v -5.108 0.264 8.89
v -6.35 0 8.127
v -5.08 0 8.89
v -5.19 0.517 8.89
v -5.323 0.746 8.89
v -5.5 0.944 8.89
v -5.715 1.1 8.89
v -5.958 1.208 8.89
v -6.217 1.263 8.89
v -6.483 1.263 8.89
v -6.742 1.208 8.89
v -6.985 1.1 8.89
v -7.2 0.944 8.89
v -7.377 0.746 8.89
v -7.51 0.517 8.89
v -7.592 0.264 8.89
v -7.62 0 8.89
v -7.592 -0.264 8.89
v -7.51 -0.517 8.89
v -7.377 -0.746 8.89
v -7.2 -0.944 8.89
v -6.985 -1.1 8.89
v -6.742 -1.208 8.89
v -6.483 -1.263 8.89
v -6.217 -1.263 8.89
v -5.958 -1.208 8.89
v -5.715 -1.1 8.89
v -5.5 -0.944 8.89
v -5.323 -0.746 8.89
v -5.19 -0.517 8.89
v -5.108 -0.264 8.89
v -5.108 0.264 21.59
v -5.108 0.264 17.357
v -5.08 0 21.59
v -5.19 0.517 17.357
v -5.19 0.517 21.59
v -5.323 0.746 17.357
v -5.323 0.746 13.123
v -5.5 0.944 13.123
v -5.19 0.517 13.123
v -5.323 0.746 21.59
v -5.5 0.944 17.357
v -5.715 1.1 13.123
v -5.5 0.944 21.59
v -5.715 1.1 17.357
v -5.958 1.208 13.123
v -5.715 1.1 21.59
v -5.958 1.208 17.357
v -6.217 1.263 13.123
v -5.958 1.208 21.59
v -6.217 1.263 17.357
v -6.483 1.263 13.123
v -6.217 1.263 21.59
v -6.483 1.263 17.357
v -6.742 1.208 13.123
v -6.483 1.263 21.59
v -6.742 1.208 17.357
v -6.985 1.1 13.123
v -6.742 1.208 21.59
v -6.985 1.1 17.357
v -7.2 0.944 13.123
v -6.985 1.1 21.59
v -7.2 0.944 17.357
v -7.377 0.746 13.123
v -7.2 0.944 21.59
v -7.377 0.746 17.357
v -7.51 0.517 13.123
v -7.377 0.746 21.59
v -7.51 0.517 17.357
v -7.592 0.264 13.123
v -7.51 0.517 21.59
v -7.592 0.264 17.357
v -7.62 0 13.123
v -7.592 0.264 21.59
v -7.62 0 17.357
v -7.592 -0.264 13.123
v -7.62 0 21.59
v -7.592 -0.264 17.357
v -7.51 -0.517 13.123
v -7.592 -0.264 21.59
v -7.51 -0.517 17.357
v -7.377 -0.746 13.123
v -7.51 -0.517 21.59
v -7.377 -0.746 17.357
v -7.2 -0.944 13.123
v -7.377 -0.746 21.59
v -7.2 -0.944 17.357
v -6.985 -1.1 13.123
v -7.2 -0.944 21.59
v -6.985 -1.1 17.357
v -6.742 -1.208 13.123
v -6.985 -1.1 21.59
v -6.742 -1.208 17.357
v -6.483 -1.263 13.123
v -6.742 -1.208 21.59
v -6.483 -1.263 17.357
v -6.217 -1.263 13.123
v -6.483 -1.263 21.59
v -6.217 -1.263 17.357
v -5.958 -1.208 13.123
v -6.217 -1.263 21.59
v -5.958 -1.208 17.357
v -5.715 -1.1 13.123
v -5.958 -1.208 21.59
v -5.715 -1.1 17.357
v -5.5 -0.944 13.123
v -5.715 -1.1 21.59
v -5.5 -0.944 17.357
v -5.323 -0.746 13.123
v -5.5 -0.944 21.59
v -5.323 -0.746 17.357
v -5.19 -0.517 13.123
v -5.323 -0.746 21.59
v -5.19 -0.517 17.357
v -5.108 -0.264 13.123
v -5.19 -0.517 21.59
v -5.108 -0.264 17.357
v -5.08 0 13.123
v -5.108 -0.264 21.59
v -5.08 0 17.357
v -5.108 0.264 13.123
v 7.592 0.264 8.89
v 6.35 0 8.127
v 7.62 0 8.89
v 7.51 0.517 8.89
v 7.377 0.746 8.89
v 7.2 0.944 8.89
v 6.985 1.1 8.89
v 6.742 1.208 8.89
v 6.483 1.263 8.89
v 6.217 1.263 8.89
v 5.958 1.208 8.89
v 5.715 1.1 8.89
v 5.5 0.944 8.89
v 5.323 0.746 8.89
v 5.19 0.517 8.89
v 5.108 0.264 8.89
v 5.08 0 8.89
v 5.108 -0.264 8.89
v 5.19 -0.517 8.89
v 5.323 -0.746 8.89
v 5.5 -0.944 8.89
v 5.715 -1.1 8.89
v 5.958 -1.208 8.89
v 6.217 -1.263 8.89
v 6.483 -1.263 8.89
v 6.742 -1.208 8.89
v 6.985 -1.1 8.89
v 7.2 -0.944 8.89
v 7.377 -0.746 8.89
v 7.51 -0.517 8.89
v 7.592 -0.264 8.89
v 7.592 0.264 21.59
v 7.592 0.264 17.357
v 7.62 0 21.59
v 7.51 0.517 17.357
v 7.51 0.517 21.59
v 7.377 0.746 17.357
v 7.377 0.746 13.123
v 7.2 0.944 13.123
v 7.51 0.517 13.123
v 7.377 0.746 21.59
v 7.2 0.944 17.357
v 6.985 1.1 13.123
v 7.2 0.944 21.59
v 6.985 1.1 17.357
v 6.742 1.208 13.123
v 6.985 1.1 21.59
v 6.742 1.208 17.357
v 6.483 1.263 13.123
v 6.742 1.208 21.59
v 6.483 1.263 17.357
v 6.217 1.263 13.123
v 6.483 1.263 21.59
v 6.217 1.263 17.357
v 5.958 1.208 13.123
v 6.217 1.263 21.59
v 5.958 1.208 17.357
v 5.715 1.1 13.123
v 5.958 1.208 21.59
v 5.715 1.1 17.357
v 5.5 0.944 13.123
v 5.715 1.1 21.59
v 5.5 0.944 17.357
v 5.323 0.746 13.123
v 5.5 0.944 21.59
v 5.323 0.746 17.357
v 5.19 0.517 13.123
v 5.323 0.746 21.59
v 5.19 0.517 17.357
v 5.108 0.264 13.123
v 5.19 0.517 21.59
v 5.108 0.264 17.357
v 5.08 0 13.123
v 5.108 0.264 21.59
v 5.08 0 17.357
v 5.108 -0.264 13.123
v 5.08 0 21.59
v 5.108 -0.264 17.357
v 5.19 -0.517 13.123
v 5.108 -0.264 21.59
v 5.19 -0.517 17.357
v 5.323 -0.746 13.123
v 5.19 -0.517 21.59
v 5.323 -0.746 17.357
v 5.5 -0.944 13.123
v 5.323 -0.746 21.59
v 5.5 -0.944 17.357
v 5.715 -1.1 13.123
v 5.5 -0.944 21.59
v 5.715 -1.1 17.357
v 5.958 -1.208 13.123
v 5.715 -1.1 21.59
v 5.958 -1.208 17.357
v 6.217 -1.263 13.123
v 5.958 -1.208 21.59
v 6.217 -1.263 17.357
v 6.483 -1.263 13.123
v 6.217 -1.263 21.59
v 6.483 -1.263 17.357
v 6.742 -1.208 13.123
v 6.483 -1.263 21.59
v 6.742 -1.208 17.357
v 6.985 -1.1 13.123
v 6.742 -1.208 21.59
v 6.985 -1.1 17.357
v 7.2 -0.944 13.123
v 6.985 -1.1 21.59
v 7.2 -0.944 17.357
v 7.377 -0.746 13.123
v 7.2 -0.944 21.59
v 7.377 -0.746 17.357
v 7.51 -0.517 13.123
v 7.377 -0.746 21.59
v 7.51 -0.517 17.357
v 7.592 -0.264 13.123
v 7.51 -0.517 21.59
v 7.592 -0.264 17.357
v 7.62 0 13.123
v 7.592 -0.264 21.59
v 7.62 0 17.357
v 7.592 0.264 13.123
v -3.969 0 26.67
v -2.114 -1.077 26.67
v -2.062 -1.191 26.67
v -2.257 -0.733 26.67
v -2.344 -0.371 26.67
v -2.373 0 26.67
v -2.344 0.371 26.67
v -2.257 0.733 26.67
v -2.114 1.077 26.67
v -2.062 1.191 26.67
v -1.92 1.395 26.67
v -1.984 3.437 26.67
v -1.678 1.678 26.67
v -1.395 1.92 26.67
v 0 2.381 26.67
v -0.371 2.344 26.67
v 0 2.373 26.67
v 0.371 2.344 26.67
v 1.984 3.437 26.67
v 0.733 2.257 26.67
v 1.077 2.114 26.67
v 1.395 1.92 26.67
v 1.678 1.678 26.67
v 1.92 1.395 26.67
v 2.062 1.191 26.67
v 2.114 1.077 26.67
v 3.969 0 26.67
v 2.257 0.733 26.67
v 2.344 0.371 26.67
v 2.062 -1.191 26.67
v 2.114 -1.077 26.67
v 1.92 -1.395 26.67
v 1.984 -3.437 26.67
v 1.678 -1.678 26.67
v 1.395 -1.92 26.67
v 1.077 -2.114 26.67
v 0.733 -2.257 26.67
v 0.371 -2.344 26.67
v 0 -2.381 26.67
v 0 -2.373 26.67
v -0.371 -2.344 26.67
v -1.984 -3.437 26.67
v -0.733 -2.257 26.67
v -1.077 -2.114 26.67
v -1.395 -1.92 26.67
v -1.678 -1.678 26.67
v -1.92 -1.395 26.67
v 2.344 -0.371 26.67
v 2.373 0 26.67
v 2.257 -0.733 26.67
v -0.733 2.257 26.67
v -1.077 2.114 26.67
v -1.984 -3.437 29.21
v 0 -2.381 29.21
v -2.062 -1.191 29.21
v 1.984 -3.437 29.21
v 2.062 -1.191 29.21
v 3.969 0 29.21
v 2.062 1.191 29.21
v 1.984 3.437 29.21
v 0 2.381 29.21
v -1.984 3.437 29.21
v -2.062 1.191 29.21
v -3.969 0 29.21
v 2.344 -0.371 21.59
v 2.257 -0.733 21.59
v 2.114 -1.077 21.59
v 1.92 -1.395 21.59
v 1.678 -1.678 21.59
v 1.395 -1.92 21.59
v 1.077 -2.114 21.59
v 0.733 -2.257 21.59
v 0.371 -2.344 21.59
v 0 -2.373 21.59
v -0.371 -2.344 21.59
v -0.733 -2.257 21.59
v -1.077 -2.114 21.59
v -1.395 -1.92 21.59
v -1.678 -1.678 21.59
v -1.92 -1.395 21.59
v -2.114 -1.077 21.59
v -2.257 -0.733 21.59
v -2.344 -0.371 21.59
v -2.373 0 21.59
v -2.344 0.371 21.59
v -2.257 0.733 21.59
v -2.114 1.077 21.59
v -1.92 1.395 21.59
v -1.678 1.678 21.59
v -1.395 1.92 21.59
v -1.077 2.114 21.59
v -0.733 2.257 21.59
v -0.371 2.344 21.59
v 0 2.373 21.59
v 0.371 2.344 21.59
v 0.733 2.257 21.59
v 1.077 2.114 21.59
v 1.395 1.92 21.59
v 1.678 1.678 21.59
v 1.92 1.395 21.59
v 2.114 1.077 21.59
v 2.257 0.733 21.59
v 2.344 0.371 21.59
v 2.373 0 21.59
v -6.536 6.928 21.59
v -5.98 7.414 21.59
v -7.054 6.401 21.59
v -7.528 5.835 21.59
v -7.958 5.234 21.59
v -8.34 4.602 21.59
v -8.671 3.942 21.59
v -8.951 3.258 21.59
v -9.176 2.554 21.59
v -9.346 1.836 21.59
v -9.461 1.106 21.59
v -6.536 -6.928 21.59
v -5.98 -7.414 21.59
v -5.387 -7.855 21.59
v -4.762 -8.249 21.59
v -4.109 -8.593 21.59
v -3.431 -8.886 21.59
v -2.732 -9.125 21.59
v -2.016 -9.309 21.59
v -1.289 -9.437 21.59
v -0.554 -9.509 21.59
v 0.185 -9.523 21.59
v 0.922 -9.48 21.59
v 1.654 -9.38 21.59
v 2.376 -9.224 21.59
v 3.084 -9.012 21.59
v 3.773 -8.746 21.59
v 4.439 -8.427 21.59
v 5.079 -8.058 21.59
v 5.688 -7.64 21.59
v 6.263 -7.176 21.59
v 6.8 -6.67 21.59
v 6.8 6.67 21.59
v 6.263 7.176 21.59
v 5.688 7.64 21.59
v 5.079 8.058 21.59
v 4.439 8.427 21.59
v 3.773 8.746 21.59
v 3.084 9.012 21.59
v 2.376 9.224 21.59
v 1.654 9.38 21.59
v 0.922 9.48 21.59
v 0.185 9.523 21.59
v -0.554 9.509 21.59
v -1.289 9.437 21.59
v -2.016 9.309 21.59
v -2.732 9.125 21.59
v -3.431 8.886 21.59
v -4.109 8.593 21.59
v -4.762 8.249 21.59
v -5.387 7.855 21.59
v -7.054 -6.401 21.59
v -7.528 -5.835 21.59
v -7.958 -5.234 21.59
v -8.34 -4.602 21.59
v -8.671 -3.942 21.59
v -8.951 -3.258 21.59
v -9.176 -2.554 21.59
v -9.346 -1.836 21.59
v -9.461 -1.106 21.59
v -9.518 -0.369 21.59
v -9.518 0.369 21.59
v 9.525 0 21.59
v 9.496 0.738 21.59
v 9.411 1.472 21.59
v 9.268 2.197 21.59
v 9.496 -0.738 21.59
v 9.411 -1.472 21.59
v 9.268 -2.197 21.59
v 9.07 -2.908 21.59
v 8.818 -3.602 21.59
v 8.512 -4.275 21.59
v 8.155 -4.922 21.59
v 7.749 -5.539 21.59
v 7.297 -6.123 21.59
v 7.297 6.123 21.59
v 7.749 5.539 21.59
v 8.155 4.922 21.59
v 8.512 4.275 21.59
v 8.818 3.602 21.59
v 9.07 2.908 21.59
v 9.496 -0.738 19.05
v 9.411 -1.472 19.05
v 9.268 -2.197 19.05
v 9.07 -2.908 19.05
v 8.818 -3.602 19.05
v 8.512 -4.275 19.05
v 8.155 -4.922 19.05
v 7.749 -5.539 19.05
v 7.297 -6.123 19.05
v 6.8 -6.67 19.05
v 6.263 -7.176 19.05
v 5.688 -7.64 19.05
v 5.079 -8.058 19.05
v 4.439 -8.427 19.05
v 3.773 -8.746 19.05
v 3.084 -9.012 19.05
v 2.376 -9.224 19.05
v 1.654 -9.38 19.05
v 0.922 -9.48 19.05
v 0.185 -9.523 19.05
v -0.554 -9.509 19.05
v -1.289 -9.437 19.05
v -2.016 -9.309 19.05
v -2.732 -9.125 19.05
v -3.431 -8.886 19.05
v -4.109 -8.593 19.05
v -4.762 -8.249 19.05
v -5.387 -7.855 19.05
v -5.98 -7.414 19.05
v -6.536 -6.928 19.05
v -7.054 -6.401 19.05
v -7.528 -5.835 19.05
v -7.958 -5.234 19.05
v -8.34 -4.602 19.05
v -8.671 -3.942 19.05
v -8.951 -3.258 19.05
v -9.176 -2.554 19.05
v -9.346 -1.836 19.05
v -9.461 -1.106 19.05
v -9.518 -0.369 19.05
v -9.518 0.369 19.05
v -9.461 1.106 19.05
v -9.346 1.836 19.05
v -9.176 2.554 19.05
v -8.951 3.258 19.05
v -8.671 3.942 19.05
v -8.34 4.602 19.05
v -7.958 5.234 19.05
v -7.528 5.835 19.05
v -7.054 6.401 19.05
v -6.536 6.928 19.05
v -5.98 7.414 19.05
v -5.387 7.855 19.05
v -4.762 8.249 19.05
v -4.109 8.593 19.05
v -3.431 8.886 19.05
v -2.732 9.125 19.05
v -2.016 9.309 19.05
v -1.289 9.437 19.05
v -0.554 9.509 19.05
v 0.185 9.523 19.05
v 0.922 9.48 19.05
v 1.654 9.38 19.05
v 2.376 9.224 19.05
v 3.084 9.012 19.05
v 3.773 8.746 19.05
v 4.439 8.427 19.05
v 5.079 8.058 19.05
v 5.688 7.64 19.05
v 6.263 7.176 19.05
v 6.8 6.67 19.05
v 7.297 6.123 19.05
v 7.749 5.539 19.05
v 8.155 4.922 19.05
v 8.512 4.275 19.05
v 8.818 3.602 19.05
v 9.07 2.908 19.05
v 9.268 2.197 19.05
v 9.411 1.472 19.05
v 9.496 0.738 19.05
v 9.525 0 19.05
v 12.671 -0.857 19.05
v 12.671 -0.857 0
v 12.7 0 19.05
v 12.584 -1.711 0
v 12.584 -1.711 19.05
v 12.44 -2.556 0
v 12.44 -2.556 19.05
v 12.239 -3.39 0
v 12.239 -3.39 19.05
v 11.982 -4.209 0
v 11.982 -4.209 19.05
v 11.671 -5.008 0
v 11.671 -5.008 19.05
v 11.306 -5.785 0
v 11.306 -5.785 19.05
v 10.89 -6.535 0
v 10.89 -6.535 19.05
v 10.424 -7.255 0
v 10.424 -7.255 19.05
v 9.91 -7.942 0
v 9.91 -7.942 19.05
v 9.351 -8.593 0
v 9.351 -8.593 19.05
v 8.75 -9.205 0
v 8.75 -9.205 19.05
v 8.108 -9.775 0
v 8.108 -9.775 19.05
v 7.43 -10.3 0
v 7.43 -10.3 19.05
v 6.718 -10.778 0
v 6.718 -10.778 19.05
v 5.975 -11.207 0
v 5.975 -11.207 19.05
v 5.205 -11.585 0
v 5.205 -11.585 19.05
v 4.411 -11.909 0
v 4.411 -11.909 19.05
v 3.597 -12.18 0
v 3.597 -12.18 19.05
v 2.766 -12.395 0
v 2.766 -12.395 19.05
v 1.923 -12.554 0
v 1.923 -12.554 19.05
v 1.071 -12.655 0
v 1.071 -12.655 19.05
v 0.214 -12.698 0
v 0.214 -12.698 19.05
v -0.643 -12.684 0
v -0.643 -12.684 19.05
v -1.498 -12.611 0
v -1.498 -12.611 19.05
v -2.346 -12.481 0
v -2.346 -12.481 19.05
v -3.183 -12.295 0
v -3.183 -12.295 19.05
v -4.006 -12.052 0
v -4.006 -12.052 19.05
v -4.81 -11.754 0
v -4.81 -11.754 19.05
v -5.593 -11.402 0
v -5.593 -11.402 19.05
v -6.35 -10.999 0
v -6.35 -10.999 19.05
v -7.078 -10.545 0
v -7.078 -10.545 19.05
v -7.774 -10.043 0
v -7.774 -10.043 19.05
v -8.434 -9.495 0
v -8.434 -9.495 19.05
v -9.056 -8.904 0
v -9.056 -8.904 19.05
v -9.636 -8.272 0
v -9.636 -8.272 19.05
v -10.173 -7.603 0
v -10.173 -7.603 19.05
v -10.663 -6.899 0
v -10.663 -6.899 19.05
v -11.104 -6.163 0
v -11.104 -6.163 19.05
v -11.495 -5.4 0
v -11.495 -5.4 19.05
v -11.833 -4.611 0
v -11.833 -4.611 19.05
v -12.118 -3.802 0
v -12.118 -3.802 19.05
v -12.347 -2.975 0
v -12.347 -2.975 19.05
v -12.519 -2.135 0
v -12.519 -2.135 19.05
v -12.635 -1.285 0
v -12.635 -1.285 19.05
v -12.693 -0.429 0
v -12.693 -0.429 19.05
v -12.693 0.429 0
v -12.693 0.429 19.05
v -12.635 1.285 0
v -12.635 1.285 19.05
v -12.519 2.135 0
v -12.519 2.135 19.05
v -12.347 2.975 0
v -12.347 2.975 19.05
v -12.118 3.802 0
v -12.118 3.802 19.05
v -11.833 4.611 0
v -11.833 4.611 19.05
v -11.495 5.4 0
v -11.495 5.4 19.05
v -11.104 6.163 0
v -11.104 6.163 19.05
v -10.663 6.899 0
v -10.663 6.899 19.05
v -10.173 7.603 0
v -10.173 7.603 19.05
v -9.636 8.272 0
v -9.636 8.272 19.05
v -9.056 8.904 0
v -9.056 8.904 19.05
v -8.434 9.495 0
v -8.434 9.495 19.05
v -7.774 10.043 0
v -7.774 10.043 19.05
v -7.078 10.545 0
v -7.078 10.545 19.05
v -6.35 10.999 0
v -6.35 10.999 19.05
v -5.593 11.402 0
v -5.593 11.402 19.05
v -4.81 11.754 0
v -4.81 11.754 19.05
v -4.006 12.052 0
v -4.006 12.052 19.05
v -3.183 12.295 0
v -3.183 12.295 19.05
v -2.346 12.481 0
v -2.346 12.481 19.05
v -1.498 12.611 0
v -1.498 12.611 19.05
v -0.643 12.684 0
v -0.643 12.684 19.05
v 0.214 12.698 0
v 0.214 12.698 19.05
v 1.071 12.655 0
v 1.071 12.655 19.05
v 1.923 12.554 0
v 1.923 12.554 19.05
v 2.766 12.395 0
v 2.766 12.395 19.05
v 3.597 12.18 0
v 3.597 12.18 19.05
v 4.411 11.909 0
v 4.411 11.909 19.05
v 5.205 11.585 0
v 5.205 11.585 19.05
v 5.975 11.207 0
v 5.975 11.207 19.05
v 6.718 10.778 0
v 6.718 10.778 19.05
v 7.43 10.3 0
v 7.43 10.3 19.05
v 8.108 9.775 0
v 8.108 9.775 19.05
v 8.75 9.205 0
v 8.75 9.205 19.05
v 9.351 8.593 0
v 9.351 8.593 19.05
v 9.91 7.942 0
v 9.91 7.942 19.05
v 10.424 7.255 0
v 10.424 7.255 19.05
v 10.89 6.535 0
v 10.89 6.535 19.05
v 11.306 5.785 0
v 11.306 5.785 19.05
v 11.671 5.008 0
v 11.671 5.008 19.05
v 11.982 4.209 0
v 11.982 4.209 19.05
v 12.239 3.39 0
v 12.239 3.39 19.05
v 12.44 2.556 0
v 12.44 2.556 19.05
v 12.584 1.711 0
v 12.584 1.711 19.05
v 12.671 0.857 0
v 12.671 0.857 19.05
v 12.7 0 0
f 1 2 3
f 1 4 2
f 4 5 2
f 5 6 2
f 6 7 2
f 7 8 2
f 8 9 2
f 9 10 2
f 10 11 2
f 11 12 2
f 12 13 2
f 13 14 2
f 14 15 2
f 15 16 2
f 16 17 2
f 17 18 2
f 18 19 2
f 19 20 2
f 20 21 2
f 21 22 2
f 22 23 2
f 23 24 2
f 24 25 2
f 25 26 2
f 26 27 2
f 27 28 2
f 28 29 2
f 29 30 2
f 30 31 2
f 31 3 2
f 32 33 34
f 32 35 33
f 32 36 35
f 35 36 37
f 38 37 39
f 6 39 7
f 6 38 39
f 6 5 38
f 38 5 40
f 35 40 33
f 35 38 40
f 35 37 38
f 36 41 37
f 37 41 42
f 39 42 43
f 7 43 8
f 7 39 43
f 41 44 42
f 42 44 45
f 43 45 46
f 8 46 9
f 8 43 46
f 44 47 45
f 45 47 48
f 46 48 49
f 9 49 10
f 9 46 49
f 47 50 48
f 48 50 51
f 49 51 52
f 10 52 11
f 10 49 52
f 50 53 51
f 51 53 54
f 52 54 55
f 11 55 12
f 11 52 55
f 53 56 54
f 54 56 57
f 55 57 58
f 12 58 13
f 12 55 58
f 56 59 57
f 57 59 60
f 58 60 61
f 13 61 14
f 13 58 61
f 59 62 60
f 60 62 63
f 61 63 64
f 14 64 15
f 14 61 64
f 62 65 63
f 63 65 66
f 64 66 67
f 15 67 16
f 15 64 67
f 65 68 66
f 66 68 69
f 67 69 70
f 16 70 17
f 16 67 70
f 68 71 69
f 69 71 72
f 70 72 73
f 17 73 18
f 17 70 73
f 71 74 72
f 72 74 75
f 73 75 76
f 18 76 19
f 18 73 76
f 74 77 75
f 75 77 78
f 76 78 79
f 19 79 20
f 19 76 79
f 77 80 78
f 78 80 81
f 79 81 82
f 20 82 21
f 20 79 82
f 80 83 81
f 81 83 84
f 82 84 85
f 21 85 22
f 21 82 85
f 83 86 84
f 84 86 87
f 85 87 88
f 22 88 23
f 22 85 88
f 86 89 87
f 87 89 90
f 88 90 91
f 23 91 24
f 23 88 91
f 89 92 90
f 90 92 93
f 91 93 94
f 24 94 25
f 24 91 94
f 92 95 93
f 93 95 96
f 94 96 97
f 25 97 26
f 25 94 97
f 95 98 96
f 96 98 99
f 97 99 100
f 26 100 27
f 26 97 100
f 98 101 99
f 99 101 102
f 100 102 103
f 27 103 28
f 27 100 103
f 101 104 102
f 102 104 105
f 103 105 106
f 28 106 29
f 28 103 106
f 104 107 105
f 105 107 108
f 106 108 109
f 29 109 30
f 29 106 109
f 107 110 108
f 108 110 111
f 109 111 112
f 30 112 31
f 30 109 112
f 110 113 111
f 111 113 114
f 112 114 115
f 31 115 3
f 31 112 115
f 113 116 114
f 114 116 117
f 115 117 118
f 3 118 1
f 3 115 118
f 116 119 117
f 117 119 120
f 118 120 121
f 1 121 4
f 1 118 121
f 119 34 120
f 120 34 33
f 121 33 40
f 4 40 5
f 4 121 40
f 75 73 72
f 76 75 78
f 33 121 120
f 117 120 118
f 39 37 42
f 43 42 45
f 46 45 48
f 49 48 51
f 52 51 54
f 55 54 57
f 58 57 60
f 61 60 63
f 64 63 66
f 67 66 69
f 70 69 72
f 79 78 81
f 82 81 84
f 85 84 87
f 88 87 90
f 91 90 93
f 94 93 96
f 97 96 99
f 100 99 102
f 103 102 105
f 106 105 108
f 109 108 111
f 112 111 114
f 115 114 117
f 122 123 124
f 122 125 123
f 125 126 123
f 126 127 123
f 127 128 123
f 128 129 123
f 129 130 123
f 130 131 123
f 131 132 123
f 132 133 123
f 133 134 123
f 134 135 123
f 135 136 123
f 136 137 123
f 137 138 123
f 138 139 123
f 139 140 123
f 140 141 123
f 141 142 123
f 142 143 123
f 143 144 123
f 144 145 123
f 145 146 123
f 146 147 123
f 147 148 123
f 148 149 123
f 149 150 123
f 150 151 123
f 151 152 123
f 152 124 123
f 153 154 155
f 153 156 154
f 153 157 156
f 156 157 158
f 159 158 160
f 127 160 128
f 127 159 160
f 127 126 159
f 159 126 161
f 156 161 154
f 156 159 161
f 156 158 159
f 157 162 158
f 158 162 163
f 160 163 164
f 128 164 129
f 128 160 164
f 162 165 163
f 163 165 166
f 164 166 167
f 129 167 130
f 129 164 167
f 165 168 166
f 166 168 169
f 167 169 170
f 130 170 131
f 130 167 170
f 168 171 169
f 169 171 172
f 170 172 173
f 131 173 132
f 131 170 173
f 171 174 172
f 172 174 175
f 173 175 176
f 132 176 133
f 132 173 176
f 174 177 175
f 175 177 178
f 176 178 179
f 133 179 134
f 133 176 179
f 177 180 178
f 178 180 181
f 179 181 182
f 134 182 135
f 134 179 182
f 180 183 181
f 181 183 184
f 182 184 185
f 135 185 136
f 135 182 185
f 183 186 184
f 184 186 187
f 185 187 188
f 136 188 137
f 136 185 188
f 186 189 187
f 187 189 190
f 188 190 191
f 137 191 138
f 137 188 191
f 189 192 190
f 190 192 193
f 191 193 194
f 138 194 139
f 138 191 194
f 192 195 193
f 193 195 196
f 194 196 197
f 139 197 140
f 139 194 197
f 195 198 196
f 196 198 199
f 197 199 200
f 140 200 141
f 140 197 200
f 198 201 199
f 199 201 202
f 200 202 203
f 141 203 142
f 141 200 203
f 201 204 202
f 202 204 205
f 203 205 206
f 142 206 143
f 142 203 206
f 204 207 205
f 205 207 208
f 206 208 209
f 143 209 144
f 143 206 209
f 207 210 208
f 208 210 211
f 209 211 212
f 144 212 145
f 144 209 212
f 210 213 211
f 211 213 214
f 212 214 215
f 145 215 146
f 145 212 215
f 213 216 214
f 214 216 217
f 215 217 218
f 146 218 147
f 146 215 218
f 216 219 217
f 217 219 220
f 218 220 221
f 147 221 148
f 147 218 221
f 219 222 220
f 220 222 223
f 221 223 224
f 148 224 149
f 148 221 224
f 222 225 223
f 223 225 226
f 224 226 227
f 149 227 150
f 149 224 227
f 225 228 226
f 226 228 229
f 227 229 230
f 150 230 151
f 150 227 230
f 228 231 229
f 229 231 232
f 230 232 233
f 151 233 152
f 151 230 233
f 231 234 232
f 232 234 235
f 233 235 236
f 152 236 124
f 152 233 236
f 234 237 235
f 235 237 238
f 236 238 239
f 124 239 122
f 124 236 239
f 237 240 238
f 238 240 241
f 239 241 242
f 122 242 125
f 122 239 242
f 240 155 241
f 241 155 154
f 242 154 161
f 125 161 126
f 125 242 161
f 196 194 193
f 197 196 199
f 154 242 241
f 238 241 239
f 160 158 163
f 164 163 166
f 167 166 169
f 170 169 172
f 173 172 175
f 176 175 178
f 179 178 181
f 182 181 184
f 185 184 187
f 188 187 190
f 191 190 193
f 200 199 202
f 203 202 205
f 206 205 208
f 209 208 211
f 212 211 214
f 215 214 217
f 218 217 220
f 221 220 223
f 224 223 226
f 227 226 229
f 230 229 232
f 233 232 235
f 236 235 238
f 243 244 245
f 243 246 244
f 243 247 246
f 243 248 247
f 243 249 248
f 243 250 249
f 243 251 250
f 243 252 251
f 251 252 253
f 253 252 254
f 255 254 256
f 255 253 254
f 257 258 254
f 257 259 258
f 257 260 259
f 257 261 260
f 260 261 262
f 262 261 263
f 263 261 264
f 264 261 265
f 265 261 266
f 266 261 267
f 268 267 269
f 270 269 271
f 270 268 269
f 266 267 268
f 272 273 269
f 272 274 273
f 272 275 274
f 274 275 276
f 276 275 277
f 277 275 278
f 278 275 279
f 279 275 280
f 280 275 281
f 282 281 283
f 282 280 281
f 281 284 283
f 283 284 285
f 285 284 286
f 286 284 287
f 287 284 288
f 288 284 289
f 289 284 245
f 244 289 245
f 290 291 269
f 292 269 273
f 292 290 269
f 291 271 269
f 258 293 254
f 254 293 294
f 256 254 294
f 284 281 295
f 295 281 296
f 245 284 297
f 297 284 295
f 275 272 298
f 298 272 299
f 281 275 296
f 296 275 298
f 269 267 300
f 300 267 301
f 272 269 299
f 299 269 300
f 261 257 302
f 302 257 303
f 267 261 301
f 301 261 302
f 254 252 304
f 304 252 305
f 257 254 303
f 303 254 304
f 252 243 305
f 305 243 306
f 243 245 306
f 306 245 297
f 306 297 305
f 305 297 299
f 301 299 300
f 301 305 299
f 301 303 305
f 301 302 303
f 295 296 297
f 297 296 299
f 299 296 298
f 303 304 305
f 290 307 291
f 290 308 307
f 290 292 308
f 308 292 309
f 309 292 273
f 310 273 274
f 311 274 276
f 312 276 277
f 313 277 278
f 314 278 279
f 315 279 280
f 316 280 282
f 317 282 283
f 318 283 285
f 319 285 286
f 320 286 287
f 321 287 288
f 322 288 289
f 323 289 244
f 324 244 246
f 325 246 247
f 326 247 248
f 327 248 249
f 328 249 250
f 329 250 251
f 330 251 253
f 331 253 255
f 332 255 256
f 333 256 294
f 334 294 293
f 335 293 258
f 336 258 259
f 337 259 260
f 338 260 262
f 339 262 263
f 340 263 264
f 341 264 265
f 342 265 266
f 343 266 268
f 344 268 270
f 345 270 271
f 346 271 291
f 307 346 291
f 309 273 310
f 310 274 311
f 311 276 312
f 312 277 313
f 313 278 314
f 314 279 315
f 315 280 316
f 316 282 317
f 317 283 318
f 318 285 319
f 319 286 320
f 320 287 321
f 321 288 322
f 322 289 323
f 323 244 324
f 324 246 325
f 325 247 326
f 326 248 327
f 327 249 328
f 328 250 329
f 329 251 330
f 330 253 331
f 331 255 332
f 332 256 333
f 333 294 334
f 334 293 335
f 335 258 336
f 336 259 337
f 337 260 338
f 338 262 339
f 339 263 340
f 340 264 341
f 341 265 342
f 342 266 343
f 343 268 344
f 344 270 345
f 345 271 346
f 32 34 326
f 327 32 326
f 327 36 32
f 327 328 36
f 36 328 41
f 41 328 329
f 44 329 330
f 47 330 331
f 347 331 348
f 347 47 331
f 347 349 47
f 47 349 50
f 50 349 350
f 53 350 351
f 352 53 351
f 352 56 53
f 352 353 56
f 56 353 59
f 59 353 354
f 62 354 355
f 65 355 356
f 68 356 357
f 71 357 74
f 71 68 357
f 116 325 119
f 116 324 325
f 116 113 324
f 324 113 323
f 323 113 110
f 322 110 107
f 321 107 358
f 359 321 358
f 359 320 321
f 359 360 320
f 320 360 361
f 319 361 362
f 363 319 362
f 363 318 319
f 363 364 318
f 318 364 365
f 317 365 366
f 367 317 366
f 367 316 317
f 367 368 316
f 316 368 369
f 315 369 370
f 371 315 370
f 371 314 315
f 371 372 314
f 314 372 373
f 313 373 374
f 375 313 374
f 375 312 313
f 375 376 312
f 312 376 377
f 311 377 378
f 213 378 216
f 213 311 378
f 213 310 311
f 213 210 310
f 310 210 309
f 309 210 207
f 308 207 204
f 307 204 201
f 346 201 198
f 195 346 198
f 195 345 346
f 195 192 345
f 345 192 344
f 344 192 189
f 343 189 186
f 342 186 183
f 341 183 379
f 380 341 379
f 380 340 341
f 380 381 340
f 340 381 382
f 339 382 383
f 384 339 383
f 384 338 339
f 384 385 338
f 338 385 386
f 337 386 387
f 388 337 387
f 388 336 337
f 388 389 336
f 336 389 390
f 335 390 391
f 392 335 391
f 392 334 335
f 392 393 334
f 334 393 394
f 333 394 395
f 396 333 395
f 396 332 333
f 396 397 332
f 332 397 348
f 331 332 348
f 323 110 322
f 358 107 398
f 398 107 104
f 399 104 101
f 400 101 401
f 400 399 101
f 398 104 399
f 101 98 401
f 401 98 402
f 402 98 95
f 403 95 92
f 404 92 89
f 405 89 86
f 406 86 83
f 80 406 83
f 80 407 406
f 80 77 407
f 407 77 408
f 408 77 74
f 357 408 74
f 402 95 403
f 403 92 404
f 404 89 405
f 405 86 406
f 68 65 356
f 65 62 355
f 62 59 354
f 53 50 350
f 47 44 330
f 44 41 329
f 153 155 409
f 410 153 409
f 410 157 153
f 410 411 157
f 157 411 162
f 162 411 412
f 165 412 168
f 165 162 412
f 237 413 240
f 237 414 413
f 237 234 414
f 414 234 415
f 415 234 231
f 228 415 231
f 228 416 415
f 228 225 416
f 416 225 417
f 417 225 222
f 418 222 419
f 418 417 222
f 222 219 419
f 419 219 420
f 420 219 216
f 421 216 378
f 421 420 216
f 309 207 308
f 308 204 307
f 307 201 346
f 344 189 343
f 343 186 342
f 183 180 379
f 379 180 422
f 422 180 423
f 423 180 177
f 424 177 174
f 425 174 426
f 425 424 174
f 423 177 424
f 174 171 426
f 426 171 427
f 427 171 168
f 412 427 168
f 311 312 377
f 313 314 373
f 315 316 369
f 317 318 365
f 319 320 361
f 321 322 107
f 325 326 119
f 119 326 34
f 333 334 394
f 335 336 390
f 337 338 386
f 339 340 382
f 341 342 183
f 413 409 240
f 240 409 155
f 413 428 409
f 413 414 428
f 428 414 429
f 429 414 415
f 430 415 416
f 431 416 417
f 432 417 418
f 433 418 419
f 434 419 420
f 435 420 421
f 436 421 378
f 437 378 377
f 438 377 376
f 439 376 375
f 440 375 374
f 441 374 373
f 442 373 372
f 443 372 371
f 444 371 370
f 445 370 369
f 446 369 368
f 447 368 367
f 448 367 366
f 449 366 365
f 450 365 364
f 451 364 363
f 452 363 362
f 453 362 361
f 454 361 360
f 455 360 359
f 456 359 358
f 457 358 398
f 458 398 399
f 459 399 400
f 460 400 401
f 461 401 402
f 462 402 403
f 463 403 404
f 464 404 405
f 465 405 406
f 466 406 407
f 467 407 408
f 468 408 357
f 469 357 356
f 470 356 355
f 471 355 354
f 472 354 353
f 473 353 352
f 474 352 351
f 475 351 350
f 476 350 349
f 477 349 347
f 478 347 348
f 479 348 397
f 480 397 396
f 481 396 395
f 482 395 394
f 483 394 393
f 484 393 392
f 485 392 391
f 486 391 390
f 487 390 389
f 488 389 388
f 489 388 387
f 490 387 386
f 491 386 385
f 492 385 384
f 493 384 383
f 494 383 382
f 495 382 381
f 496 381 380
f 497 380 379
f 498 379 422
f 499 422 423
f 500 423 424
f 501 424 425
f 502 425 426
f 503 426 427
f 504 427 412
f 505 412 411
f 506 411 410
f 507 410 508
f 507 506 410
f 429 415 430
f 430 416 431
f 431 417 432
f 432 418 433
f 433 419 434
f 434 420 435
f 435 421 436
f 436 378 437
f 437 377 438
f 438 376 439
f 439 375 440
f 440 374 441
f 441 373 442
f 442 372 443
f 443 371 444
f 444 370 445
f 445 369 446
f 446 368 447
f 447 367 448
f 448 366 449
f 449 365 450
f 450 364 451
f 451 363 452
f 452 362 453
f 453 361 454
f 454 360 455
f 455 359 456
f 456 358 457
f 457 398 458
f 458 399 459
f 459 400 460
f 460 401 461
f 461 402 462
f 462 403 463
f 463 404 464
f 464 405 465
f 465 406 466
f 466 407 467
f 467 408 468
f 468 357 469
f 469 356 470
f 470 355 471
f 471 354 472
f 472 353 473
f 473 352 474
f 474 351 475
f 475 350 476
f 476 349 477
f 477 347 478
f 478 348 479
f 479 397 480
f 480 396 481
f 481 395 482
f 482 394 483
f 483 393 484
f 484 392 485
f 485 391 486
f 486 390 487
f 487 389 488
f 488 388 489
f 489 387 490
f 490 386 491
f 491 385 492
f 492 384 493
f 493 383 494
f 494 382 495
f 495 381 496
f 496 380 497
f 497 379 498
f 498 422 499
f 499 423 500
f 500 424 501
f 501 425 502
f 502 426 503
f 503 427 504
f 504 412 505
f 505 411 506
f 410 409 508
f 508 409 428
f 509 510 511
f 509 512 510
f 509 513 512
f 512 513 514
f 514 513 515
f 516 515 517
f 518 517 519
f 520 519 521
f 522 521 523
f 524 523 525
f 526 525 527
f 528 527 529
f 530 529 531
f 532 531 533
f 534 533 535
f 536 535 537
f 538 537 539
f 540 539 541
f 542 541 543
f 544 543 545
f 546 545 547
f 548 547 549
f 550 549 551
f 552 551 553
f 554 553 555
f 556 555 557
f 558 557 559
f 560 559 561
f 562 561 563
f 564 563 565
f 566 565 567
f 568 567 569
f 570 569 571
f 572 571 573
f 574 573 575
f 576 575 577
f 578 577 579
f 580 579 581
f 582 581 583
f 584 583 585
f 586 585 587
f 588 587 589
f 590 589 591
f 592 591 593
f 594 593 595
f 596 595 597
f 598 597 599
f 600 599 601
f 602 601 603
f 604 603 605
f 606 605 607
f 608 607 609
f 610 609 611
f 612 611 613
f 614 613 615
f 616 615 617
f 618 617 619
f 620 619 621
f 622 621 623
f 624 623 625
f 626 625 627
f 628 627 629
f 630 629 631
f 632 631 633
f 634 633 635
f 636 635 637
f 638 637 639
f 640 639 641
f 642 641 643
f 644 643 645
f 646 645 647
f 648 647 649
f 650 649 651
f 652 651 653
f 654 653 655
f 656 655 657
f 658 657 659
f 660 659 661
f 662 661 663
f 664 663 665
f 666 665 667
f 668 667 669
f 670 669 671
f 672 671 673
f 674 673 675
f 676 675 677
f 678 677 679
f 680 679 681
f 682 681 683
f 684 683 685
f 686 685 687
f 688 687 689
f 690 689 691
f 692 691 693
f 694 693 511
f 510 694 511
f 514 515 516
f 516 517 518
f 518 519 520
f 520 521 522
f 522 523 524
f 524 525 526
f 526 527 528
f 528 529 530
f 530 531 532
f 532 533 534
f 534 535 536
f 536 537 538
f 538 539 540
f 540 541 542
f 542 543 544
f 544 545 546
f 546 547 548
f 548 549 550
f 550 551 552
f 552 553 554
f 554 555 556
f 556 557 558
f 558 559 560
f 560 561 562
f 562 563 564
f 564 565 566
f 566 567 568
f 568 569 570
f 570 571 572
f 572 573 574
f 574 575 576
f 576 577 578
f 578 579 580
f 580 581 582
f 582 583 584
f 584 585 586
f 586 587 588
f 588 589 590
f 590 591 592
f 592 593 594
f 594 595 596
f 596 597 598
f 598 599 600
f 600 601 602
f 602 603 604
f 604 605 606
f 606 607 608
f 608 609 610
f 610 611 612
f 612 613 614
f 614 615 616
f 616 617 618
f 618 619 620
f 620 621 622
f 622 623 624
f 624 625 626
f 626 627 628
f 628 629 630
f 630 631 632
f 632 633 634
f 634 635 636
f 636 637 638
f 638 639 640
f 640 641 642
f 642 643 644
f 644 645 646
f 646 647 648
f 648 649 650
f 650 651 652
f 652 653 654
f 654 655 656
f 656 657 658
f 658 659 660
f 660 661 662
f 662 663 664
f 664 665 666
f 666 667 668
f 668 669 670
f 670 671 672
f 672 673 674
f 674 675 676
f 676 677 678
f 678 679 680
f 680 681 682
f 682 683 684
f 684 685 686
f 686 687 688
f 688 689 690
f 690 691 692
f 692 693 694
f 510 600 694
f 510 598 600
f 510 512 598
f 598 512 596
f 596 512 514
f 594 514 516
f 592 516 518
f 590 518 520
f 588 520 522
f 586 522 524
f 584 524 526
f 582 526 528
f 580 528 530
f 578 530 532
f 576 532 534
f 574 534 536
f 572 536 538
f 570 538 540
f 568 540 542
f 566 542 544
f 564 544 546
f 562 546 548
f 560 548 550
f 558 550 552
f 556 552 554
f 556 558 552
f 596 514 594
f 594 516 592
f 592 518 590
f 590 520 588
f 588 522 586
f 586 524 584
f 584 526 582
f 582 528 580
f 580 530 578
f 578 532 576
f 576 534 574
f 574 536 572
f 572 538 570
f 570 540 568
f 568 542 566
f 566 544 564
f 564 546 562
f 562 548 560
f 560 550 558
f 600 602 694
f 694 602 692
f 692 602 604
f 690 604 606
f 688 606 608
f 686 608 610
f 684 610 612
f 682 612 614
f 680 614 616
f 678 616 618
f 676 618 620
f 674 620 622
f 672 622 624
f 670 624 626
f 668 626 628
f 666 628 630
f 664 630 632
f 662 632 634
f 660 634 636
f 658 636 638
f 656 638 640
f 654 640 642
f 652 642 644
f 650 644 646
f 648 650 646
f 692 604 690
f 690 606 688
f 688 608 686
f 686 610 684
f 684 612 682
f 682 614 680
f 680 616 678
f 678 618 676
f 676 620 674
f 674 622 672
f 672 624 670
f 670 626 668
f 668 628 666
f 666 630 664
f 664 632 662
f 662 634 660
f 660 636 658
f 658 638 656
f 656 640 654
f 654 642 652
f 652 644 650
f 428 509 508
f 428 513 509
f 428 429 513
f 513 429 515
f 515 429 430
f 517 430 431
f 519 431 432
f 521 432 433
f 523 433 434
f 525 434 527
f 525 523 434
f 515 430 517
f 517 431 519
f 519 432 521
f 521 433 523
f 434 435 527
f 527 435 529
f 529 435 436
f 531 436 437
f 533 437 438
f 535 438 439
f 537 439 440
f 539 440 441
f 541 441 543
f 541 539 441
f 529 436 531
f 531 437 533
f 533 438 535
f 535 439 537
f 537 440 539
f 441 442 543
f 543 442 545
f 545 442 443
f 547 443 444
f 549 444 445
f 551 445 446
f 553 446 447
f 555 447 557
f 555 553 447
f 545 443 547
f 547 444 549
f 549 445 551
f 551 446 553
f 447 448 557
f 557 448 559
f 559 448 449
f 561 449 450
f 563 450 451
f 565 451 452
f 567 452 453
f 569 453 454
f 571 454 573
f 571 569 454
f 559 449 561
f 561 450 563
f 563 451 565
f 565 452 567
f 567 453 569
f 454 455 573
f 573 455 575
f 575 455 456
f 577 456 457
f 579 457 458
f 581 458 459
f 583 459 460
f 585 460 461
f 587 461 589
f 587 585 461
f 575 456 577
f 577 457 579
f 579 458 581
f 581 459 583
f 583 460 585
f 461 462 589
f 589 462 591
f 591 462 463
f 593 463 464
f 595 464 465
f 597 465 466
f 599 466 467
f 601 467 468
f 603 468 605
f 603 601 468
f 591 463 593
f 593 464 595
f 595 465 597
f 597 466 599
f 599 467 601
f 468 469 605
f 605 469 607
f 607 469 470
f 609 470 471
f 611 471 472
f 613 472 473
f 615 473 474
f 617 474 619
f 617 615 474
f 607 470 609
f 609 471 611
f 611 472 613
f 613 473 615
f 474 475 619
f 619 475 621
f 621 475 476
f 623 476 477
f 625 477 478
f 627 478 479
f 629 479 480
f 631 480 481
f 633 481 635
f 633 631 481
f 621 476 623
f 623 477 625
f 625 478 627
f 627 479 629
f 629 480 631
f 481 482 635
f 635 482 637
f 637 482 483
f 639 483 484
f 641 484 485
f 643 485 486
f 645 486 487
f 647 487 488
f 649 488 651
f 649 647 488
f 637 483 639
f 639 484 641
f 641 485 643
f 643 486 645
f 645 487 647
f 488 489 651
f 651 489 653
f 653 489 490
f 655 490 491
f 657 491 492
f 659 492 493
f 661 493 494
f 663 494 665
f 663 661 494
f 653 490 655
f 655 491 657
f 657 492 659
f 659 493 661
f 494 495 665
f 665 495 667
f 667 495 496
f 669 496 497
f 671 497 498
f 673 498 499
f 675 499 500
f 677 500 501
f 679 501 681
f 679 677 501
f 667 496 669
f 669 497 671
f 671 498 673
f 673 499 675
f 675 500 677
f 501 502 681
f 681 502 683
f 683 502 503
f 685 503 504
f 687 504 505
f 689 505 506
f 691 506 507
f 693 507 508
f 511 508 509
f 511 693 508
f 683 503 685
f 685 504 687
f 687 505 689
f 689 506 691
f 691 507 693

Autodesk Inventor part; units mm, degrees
ref_plane "YZ Plane" through (0, 0, 0) normal (1, 0, 0) x (0, 1, 0)
ref_plane "XZ Plane" through (0, 0, 0) normal (0, 1, 0) x (-1, 0, 0)
sketch "Sketch1" plane through (0, 0, 0) normal (0, 0, 1) x (1, 0, 0)
  circle A0 centre (0, 0) radius 12.7
  dimension "d0" = 25.4
extrude "Extrusion1" add sketch "Sketch1" along normal blind 19.05
sketch "Sketch2" plane through (0, 0, 19.05) normal (0, 0, 1) x (1, 0, 0)
  circle A0 centre (0, 0) radius 9.525
  dimension "d3" = 19.05
extrude "Extrusion2" add sketch "Sketch2" along normal blind 1.27
sketch "Sketch3" plane through (0, 0, 20.32) normal (0, 0, 1) x (1, 0, 0)
  circle A0 centre (0, 0) radius 9.525
  dimension "d6" = 19.05
extrude "Extrusion3" add sketch "Sketch3" along normal blind 1.27
sketch "Sketch4" plane through (0, 0, 21.59) normal (0, 0, 1) x (1, 0, 0)
  circle A0 centre (0, 0) radius 2.3729
extrude "Extrusion4" add sketch "Sketch4" along normal blind 5.08
ref_plane "Work Plane1" through (0, 0, 26.67) normal (0, 0, 1) x (1, 0, 0)
sketch "Sketch10" plane through (0, 0, 26.67) normal (0, 0, 1) x (1, 0, 0)
  circle A0 centre (0, 0) radius 2.3813 construction
  circle A1 centre (0, 0) radius 3.9688 construction
  line L0 (0, 4.2939) -> (0, -5.5705) construction
  line L1 (6.3712, 0) -> (-7.3964, 0) construction
  line L2 (0, 2.3813) -> (1.9844, 3.437)
  line L3 (1.9844, 3.437) -> (2.0622, 1.1906)
  line L4 (-2.0622, 1.1906) -> (-1.9844, 3.437)
  line L5 (-1.9844, 3.437) -> (0, 2.3813)
  line L6 (-2.0622, -1.1906) -> (-3.9688, 0)
  line L7 (-3.9688, 0) -> (-2.0622, 1.1906)
  line L8 (0, -2.3813) -> (-1.9844, -3.437)
  line L9 (-1.9844, -3.437) -> (-2.0622, -1.1906)
  line L10 (2.0622, -1.1906) -> (1.9844, -3.437)
  line L11 (1.9844, -3.437) -> (0, -2.3813)
  line L12 (2.0622, 1.1906) -> (3.9688, 0)
  line L13 (3.9688, 0) -> (2.0622, -1.1906)
  line L14 (-2.0622, -1.1906) -> (0, -2.3813)
  line L15 (0, -2.3813) -> (2.0622, -1.1906)
  line L16 (2.0622, -1.1906) -> (2.0622, 1.1906)
  line L17 (2.0622, 1.1906) -> (0, 2.3813)
  line L18 (0, 2.3813) -> (-2.0622, 1.1906)
  line L19 (-2.0622, 1.1906) -> (-2.0622, -1.1906)
  line L20 (-2.0622, 1.1906) -> (0, 2.3813)
  line L21 (2.0622, 1.1906) -> (0, 2.3813)
  line L22 (2.0622, 1.1906) -> (2.0622, -1.1906)
  line L23 (2.0622, -1.1906) -> (0, -2.3813)
  line L24 (0, -2.3813) -> (-2.0622, -1.1906)
  line L25 (-2.0622, -1.1906) -> (-2.0622, 1.1906)
  line L26 (-3.9688, 0) -> (-2.0622, 1.1906)
  line L27 (-2.0622, -1.1906) -> (-2.0622, 1.1906)
  line L28 (-2.0622, -1.1906) -> (-3.9688, 0)
  line L29 (0, -2.3813) -> (-1.9844, -3.437)
  line L30 (-1.9844, -3.437) -> (-2.0622, -1.1906)
  line L31 (-2.0622, -1.1906) -> (0, -2.3812)
  line L32 (2.0622, -1.1906) -> (1.9844, -3.437)
  line L33 (1.9844, -3.437) -> (0, -2.3813)
  line L34 (0, -2.3812) -> (2.0622, -1.1906)
  line L35 (2.0622, 1.1906) -> (3.9688, 0)
  line L36 (3.9688, 0) -> (2.0622, -1.1906)
  line L37 (2.0622, -1.1906) -> (2.0622, 1.1906)
  line L38 (0, 2.3813) -> (1.9844, 3.437)
  line L39 (1.9844, 3.437) -> (2.0622, 1.1906)
  line L40 (2.0622, 1.1906) -> (0, 2.3813)
  line L41 (-2.0622, 1.1906) -> (-1.9844, 3.437)
  line L42 (-1.9844, 3.437) -> (0, 2.3813)
  line L43 (0, 2.3813) -> (-2.0622, 1.1906)
  line L44 (-2.0622, 1.1906) -> (0, 2.3813)
  line L45 (0, 2.3813) -> (-1.9844, 3.437)
  line L46 (-1.9844, 3.437) -> (-2.0622, 1.1906)
  line L47 (0, 2.3813) -> (1.9844, 3.437)
  line L48 (1.9844, 3.437) -> (2.0622, 1.1906)
  line L49 (0, 2.3813) -> (2.0622, 1.1906)
  line L50 (2.0622, 1.1906) -> (2.0622, -1.1906)
  line L51 (2.0622, -1.1906) -> (3.9688, 0)
  line L52 (3.9688, 0) -> (2.0622, 1.1906)
  line L53 (2.0622, -1.1906) -> (0, -2.3812)
  line L54 (0, -2.3812) -> (1.9844, -3.437)
  line L55 (1.9844, -3.437) -> (2.0622, -1.1906)
  line L56 (0, -2.3812) -> (-1.9844, -3.437)
  line L57 (-2.0622, -1.1906) -> (-1.9844, -3.437)
  line L58 (-2.0622, -1.1906) -> (0, -2.3812)
  line L59 (-2.0622, -1.1906) -> (-2.0622, 1.1906)
  line L60 (-2.0622, 1.1906) -> (-3.9688, 0)
  line L61 (-3.9688, 0) -> (-2.0622, -1.1906)
  point P0 (3.9688, 0)
  point P1 (-1.9844, 3.437)
  point P2 (-3.9688, 0)
  point P3 (-1.9844, -3.437)
  point P4 (1.9844, -3.437)
  dimension "d26" = 4.7625
  dimension "d27" = 7.9375
  dimension "d30" = 360
  dimension "d34" = 360
  dimension "d38" = 360
  dimension "d42" = 360
extrude "Extrusion10" add sketch "Sketch10" along normal blind 2.54
sketch "Sketch11" plane through (0, 0, 21.59) normal (0, 0, 1) x (1, 0, 0)
  point P0 (0, 0)
  point P1 (-6.35, 0)
  point P2 (6.35, 0)
  dimension "d46" = 6.35
  dimension "d47" = 6.35
hole "Hole1" at (-6.35, 0, 21.59) at (6.35, 0, 21.59) direction (0, 0, -1) diameter 2.54 depth 12.7 tip angle 118
properties part number "000109"
